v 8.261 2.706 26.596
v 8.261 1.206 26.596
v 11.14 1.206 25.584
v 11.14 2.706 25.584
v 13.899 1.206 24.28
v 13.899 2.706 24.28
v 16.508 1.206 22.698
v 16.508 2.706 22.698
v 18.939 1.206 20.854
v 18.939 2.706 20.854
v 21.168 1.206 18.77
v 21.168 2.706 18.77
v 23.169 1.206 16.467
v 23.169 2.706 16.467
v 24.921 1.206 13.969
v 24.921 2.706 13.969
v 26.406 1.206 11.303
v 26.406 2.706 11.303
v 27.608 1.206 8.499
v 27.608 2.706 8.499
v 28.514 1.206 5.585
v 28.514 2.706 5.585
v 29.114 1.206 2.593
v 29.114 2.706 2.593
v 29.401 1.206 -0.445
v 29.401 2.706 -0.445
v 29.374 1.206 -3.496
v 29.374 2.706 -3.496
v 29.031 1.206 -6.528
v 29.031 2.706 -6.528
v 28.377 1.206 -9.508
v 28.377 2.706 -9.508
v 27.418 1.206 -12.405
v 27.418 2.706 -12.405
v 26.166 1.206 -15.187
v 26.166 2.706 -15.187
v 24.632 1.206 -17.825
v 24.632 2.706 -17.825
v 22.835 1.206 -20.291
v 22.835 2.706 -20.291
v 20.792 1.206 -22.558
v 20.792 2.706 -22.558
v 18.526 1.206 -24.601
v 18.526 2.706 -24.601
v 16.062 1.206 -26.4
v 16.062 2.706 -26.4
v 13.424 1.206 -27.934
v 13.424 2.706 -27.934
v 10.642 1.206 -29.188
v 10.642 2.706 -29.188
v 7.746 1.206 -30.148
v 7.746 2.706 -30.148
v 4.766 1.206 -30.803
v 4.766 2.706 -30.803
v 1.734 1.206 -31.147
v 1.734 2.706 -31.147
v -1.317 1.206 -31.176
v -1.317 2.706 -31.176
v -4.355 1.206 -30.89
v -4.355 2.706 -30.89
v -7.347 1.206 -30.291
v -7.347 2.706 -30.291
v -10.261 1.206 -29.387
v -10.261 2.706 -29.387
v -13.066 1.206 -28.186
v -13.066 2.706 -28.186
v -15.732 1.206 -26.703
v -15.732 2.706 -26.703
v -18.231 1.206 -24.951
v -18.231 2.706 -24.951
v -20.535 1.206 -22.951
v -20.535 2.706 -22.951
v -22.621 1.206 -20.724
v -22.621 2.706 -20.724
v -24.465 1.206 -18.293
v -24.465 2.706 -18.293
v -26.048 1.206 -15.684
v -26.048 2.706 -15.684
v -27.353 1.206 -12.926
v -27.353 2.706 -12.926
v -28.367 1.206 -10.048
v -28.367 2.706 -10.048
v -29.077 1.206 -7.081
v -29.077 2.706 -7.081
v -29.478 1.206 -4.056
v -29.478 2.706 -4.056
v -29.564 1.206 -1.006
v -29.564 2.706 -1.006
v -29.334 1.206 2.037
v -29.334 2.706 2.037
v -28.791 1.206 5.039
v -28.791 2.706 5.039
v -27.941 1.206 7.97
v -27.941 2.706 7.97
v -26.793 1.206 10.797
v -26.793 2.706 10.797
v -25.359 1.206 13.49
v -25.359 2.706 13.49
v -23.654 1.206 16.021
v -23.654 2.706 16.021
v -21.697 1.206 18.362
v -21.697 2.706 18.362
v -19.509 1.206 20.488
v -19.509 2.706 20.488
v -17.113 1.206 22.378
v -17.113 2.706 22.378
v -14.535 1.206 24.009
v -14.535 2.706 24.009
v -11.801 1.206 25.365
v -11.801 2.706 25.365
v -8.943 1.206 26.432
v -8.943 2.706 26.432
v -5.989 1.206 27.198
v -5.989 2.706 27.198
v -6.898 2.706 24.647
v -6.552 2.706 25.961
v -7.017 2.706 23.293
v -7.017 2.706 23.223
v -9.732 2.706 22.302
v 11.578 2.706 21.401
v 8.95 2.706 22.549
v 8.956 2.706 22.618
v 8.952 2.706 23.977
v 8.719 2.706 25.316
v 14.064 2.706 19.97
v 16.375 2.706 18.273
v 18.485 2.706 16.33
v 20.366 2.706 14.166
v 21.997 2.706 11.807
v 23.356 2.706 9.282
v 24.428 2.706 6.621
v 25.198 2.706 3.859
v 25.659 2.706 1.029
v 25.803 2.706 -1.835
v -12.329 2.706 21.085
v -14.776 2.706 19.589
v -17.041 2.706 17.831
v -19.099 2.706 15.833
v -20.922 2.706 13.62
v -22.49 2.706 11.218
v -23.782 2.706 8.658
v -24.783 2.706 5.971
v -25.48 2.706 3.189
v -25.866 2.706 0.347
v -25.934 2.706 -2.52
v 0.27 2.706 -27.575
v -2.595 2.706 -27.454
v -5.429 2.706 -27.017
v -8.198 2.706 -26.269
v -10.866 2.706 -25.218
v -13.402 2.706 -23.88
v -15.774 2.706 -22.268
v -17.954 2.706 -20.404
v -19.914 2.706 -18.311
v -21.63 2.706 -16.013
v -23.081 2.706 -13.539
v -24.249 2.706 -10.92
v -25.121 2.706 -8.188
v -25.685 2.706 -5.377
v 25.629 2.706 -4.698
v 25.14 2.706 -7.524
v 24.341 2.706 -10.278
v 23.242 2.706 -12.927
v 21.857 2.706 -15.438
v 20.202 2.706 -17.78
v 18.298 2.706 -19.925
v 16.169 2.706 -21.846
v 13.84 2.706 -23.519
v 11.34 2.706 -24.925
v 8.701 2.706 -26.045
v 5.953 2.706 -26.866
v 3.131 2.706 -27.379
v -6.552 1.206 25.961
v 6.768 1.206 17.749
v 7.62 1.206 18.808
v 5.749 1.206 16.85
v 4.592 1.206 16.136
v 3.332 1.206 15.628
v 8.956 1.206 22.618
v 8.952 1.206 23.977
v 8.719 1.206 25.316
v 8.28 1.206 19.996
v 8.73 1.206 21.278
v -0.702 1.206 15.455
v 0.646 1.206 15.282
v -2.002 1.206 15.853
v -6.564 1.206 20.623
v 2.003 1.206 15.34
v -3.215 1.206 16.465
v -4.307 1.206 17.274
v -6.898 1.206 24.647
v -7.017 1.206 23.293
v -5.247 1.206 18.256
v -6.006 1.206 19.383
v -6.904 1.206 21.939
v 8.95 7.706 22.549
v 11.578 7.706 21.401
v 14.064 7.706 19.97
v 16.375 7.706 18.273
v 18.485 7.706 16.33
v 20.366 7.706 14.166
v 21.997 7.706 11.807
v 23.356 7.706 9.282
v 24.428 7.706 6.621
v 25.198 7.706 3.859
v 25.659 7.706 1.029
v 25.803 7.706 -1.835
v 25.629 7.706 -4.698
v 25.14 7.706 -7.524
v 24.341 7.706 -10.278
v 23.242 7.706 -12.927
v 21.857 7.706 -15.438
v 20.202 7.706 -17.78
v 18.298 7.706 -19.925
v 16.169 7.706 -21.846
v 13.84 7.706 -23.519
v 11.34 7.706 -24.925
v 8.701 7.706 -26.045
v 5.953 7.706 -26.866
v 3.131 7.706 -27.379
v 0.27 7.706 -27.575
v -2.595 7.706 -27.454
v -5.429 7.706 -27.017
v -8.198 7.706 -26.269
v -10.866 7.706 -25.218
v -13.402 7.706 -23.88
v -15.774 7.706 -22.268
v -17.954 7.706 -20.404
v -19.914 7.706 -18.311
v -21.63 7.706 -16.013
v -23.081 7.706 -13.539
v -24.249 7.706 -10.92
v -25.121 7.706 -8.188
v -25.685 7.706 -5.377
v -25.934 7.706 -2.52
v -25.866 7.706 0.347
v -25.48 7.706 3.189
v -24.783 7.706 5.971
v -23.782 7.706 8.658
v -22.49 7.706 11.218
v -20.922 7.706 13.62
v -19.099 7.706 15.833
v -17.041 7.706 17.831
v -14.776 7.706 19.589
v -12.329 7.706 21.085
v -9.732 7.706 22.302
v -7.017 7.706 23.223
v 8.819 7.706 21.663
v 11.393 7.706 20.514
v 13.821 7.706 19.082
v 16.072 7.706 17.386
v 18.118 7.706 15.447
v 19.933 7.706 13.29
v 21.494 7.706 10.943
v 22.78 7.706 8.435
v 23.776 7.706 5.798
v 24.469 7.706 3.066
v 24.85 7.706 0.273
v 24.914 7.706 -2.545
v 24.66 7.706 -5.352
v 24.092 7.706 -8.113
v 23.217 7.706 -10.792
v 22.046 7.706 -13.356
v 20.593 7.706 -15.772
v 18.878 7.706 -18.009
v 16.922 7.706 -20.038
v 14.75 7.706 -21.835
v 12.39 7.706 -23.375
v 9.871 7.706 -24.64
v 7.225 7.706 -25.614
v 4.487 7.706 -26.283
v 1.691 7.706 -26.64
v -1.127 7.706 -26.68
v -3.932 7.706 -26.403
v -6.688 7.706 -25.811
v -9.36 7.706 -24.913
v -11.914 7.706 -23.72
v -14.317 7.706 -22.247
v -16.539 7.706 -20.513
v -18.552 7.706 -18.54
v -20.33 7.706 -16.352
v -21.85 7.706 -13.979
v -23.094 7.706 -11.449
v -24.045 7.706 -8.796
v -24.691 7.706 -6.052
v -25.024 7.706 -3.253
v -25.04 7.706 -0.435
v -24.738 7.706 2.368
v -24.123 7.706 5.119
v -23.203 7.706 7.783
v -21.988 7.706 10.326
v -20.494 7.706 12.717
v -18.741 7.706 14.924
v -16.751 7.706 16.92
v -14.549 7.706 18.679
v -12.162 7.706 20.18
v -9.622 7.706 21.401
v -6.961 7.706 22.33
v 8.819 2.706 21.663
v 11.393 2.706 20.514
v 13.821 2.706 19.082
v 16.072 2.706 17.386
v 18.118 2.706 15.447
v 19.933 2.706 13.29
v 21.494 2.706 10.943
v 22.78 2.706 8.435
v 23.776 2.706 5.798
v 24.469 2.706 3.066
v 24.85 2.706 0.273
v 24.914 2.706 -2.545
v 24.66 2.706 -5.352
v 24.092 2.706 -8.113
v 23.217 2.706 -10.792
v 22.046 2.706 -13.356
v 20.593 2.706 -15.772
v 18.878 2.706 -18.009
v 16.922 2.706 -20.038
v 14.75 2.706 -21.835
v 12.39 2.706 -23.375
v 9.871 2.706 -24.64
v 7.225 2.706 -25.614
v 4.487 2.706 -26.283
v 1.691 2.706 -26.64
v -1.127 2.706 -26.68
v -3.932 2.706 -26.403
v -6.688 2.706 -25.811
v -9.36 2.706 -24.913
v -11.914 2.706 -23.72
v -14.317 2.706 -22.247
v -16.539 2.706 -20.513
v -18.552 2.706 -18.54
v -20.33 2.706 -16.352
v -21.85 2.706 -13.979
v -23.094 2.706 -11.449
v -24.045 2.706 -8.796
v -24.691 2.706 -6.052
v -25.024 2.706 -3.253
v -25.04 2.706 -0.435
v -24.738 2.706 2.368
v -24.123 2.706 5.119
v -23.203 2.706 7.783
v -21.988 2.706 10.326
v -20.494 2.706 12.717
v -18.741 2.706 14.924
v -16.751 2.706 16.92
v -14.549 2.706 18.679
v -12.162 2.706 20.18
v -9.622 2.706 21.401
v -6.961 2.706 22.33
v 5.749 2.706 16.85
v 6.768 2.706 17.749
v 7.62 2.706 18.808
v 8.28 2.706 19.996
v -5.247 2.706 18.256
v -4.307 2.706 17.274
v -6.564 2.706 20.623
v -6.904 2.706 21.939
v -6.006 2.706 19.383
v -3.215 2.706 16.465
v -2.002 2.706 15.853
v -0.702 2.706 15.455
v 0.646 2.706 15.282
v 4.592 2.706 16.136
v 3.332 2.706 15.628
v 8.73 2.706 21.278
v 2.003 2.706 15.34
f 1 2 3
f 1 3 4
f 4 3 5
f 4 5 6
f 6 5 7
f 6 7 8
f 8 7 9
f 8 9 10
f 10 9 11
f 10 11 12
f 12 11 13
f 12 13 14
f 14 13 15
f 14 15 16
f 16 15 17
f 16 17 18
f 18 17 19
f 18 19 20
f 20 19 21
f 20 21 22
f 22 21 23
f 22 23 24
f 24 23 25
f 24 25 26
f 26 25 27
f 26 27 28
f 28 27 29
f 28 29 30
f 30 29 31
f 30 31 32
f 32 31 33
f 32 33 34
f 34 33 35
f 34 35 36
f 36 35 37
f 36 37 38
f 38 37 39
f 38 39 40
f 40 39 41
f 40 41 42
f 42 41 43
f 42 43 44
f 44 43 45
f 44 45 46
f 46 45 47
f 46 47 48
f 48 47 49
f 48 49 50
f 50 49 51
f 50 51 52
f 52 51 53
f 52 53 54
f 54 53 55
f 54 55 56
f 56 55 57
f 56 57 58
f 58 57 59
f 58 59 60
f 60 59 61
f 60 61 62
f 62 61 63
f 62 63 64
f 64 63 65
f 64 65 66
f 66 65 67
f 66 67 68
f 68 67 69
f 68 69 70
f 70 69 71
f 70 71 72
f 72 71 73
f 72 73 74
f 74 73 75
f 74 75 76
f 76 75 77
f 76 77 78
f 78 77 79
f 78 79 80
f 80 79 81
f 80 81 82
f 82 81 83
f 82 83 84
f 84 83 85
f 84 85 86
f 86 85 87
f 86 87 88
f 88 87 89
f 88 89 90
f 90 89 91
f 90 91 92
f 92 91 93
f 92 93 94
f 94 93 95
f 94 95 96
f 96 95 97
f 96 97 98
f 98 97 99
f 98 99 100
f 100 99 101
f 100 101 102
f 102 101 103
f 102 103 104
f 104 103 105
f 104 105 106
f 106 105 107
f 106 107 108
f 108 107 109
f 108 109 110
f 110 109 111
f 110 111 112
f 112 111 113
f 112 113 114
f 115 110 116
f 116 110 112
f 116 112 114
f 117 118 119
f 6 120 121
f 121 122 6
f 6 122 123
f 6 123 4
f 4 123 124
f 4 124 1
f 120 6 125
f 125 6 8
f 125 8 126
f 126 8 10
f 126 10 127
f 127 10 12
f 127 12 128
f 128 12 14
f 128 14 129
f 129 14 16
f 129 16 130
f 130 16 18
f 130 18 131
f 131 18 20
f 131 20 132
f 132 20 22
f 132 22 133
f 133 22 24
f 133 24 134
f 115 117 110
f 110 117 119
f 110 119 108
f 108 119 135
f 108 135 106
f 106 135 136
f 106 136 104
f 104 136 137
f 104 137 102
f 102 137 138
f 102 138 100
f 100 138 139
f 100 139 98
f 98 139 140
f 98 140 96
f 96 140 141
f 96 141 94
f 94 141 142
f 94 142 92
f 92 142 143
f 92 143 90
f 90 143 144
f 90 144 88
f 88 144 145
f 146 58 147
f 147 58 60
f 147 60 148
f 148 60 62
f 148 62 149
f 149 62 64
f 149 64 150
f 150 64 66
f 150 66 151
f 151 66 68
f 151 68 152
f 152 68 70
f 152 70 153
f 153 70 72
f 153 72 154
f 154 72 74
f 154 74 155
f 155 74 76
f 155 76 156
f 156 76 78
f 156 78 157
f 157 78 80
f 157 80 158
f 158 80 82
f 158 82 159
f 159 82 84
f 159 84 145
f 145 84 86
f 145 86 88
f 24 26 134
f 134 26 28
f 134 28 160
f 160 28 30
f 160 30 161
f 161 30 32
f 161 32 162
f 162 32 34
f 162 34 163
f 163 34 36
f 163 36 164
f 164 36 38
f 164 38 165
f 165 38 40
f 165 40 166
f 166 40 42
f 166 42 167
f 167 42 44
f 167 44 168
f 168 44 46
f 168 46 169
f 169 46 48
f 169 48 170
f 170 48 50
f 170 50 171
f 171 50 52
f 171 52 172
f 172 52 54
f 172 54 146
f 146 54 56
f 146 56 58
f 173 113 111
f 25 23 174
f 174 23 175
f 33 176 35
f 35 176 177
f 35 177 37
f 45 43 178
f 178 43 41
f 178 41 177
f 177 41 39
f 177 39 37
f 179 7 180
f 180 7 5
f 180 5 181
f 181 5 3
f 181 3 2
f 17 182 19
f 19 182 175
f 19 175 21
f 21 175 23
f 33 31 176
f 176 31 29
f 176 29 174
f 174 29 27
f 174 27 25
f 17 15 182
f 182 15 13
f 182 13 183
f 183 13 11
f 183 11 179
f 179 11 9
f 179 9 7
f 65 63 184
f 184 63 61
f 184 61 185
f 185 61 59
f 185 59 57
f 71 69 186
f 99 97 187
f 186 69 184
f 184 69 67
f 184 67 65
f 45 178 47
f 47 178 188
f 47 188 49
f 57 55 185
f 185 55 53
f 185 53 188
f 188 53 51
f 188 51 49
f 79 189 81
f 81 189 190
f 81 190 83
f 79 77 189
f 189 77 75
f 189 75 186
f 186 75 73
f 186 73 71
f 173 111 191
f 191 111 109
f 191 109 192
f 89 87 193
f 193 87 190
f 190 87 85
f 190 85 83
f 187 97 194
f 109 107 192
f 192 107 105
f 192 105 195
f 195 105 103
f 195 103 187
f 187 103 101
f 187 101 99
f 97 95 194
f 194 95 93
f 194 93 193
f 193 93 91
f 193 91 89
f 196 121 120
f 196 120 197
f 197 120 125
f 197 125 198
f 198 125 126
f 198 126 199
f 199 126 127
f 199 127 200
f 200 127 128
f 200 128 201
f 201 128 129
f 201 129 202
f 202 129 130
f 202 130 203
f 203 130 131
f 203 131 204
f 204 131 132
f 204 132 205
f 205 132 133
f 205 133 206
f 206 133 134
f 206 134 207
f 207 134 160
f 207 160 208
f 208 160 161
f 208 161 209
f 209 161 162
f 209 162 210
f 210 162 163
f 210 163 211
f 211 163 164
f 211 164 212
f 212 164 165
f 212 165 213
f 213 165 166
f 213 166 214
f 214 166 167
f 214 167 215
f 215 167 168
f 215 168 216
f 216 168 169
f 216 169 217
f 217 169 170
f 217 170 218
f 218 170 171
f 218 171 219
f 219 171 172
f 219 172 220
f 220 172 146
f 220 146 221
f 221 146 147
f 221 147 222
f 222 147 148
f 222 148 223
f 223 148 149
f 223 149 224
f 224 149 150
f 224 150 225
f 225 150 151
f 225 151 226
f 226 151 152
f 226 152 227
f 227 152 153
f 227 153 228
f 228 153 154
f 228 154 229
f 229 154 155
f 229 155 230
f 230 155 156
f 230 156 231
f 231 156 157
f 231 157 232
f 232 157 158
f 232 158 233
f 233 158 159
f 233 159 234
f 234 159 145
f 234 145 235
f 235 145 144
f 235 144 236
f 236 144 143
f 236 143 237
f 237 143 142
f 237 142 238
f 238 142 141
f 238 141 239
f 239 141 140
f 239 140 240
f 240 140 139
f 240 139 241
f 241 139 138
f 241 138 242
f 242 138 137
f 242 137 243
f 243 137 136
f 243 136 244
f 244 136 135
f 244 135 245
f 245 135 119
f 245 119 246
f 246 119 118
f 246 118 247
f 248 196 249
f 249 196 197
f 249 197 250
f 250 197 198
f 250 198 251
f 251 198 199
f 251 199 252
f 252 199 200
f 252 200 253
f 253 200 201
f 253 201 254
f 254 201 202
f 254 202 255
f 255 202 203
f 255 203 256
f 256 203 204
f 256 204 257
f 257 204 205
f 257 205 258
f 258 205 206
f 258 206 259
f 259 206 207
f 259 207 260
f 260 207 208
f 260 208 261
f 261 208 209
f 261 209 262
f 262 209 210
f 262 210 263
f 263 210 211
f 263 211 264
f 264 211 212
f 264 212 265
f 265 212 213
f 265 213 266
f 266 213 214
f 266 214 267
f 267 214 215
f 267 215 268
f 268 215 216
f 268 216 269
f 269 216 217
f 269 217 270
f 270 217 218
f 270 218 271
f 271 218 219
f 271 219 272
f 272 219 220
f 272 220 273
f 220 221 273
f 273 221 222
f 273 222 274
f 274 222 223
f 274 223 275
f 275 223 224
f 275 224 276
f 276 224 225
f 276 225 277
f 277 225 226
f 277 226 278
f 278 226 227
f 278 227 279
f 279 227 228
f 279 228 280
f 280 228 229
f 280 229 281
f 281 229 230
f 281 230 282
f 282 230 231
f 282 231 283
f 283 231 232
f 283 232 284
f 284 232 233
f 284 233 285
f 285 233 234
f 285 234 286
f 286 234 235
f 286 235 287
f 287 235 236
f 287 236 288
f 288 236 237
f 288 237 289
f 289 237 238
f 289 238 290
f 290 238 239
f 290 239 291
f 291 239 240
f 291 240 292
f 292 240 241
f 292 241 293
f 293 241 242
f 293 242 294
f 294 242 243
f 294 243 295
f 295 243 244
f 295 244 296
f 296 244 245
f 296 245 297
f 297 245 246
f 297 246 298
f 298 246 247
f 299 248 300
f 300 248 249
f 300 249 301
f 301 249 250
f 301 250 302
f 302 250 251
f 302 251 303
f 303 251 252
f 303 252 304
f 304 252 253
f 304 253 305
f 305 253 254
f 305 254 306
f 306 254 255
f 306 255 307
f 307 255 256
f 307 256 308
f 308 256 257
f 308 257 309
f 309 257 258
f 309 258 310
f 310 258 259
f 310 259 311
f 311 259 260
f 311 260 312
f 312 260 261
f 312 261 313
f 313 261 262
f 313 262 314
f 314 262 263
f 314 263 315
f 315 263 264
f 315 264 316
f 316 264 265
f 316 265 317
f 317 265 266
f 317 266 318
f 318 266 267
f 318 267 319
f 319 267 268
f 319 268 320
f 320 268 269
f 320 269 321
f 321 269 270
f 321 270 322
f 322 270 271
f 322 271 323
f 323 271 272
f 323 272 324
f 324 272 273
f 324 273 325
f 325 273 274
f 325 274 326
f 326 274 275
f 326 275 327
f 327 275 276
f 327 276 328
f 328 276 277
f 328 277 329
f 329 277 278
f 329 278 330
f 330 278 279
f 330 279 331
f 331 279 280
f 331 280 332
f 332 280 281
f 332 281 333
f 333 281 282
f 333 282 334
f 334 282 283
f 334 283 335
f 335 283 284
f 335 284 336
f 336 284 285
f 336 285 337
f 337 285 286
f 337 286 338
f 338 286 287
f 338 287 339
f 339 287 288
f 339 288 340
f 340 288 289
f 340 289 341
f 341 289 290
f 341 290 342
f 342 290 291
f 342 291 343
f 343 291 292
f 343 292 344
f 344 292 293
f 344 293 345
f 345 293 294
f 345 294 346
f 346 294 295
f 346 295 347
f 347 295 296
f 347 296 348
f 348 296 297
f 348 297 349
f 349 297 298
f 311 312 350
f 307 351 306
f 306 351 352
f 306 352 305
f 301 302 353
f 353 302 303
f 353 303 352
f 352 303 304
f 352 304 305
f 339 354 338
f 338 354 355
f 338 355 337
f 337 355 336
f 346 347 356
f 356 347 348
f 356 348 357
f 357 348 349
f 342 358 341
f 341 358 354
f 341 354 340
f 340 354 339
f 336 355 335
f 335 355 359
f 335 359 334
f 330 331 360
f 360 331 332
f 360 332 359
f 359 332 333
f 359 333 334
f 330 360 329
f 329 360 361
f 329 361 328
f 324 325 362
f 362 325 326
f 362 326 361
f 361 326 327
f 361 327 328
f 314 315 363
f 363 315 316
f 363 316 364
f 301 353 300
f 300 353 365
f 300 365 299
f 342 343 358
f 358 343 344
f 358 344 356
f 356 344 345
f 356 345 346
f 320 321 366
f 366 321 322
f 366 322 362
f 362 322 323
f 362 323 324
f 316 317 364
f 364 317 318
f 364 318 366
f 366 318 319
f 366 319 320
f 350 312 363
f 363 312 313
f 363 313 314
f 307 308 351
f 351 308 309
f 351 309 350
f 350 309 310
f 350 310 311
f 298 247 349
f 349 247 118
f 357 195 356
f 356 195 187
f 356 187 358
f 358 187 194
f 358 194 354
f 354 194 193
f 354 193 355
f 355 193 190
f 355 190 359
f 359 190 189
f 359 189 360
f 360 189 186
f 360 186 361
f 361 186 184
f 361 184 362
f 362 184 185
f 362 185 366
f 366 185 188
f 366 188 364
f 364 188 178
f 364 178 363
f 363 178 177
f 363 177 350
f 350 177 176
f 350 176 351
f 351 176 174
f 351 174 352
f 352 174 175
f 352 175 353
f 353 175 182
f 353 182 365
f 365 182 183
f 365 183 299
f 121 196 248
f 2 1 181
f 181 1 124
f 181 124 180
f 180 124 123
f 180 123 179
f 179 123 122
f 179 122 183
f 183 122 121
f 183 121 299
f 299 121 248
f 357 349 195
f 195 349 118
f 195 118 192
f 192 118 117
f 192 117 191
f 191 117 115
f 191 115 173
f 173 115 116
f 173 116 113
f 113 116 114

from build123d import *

# Parameters (mm, degrees)
SKETCH1_R           = 59
BOSS_EXTRUDE1_DEPTH = 3
SKETCH3_R           = 51.75
BOSS_EXTRUDE2_DEPTH = 10
SKETCH4_R           = 50
CUT_EXTRUDE2_DEPTH  = 10
SKETCH6_R           = 16
CUT_EXTRUDE4_DEPTH  = 15
SCALE1_SCALE        = 0.5


with BuildPart() as part:
    # Sketch1 → Boss-Extrude1 (new body)
    with BuildSketch(Plane(origin=(0, 0, 0), x_dir=(1, 0, 0), z_dir=(0, 1, 0))):
        with Locations(Location((0, 0, 0), (0, 0, 270))):
            Circle(SKETCH1_R)
    extrude(amount=BOSS_EXTRUDE1_DEPTH)

    # Sketch3 → Boss-Extrude2 (add)
    with BuildSketch(Plane(origin=(0, 3, 0), x_dir=(1, 0, 0), z_dir=(0, 1, 0))):
        with Locations(Location((0, 0, 0), (0, 0, 270))):
            Circle(SKETCH3_R)
    extrude(amount=BOSS_EXTRUDE2_DEPTH)

    # Sketch4 → Cut-Extrude2 (cut)
    with BuildSketch(Plane(origin=(0, 13, 0), x_dir=(1, 0, 0), z_dir=(0, 1, 0))):
        with Locations(Location((0, 0, 0), (0, 0, 270))):
            Circle(SKETCH4_R)
    extrude(amount=-CUT_EXTRUDE2_DEPTH, mode=Mode.SUBTRACT)

    # Sketch6 → Cut-Extrude4 (cut)
    with BuildSketch(Plane(origin=(0, 13, 0), x_dir=(1, 0, 0), z_dir=(0, 1, 0))):
        with Locations((2.110398292, -49.955442337)):
            Circle(SKETCH6_R)
    extrude(amount=-CUT_EXTRUDE4_DEPTH, mode=Mode.SUBTRACT)


with BuildPart() as part_1:
    # Scale1: scaled about (-0.143850324, 2.411415786, -3.405094959)
    add(part.part.scale(SCALE1_SCALE).moved(Location((-0.071925162, 1.205707893, -1.702547479))))


solid = part_1.part
